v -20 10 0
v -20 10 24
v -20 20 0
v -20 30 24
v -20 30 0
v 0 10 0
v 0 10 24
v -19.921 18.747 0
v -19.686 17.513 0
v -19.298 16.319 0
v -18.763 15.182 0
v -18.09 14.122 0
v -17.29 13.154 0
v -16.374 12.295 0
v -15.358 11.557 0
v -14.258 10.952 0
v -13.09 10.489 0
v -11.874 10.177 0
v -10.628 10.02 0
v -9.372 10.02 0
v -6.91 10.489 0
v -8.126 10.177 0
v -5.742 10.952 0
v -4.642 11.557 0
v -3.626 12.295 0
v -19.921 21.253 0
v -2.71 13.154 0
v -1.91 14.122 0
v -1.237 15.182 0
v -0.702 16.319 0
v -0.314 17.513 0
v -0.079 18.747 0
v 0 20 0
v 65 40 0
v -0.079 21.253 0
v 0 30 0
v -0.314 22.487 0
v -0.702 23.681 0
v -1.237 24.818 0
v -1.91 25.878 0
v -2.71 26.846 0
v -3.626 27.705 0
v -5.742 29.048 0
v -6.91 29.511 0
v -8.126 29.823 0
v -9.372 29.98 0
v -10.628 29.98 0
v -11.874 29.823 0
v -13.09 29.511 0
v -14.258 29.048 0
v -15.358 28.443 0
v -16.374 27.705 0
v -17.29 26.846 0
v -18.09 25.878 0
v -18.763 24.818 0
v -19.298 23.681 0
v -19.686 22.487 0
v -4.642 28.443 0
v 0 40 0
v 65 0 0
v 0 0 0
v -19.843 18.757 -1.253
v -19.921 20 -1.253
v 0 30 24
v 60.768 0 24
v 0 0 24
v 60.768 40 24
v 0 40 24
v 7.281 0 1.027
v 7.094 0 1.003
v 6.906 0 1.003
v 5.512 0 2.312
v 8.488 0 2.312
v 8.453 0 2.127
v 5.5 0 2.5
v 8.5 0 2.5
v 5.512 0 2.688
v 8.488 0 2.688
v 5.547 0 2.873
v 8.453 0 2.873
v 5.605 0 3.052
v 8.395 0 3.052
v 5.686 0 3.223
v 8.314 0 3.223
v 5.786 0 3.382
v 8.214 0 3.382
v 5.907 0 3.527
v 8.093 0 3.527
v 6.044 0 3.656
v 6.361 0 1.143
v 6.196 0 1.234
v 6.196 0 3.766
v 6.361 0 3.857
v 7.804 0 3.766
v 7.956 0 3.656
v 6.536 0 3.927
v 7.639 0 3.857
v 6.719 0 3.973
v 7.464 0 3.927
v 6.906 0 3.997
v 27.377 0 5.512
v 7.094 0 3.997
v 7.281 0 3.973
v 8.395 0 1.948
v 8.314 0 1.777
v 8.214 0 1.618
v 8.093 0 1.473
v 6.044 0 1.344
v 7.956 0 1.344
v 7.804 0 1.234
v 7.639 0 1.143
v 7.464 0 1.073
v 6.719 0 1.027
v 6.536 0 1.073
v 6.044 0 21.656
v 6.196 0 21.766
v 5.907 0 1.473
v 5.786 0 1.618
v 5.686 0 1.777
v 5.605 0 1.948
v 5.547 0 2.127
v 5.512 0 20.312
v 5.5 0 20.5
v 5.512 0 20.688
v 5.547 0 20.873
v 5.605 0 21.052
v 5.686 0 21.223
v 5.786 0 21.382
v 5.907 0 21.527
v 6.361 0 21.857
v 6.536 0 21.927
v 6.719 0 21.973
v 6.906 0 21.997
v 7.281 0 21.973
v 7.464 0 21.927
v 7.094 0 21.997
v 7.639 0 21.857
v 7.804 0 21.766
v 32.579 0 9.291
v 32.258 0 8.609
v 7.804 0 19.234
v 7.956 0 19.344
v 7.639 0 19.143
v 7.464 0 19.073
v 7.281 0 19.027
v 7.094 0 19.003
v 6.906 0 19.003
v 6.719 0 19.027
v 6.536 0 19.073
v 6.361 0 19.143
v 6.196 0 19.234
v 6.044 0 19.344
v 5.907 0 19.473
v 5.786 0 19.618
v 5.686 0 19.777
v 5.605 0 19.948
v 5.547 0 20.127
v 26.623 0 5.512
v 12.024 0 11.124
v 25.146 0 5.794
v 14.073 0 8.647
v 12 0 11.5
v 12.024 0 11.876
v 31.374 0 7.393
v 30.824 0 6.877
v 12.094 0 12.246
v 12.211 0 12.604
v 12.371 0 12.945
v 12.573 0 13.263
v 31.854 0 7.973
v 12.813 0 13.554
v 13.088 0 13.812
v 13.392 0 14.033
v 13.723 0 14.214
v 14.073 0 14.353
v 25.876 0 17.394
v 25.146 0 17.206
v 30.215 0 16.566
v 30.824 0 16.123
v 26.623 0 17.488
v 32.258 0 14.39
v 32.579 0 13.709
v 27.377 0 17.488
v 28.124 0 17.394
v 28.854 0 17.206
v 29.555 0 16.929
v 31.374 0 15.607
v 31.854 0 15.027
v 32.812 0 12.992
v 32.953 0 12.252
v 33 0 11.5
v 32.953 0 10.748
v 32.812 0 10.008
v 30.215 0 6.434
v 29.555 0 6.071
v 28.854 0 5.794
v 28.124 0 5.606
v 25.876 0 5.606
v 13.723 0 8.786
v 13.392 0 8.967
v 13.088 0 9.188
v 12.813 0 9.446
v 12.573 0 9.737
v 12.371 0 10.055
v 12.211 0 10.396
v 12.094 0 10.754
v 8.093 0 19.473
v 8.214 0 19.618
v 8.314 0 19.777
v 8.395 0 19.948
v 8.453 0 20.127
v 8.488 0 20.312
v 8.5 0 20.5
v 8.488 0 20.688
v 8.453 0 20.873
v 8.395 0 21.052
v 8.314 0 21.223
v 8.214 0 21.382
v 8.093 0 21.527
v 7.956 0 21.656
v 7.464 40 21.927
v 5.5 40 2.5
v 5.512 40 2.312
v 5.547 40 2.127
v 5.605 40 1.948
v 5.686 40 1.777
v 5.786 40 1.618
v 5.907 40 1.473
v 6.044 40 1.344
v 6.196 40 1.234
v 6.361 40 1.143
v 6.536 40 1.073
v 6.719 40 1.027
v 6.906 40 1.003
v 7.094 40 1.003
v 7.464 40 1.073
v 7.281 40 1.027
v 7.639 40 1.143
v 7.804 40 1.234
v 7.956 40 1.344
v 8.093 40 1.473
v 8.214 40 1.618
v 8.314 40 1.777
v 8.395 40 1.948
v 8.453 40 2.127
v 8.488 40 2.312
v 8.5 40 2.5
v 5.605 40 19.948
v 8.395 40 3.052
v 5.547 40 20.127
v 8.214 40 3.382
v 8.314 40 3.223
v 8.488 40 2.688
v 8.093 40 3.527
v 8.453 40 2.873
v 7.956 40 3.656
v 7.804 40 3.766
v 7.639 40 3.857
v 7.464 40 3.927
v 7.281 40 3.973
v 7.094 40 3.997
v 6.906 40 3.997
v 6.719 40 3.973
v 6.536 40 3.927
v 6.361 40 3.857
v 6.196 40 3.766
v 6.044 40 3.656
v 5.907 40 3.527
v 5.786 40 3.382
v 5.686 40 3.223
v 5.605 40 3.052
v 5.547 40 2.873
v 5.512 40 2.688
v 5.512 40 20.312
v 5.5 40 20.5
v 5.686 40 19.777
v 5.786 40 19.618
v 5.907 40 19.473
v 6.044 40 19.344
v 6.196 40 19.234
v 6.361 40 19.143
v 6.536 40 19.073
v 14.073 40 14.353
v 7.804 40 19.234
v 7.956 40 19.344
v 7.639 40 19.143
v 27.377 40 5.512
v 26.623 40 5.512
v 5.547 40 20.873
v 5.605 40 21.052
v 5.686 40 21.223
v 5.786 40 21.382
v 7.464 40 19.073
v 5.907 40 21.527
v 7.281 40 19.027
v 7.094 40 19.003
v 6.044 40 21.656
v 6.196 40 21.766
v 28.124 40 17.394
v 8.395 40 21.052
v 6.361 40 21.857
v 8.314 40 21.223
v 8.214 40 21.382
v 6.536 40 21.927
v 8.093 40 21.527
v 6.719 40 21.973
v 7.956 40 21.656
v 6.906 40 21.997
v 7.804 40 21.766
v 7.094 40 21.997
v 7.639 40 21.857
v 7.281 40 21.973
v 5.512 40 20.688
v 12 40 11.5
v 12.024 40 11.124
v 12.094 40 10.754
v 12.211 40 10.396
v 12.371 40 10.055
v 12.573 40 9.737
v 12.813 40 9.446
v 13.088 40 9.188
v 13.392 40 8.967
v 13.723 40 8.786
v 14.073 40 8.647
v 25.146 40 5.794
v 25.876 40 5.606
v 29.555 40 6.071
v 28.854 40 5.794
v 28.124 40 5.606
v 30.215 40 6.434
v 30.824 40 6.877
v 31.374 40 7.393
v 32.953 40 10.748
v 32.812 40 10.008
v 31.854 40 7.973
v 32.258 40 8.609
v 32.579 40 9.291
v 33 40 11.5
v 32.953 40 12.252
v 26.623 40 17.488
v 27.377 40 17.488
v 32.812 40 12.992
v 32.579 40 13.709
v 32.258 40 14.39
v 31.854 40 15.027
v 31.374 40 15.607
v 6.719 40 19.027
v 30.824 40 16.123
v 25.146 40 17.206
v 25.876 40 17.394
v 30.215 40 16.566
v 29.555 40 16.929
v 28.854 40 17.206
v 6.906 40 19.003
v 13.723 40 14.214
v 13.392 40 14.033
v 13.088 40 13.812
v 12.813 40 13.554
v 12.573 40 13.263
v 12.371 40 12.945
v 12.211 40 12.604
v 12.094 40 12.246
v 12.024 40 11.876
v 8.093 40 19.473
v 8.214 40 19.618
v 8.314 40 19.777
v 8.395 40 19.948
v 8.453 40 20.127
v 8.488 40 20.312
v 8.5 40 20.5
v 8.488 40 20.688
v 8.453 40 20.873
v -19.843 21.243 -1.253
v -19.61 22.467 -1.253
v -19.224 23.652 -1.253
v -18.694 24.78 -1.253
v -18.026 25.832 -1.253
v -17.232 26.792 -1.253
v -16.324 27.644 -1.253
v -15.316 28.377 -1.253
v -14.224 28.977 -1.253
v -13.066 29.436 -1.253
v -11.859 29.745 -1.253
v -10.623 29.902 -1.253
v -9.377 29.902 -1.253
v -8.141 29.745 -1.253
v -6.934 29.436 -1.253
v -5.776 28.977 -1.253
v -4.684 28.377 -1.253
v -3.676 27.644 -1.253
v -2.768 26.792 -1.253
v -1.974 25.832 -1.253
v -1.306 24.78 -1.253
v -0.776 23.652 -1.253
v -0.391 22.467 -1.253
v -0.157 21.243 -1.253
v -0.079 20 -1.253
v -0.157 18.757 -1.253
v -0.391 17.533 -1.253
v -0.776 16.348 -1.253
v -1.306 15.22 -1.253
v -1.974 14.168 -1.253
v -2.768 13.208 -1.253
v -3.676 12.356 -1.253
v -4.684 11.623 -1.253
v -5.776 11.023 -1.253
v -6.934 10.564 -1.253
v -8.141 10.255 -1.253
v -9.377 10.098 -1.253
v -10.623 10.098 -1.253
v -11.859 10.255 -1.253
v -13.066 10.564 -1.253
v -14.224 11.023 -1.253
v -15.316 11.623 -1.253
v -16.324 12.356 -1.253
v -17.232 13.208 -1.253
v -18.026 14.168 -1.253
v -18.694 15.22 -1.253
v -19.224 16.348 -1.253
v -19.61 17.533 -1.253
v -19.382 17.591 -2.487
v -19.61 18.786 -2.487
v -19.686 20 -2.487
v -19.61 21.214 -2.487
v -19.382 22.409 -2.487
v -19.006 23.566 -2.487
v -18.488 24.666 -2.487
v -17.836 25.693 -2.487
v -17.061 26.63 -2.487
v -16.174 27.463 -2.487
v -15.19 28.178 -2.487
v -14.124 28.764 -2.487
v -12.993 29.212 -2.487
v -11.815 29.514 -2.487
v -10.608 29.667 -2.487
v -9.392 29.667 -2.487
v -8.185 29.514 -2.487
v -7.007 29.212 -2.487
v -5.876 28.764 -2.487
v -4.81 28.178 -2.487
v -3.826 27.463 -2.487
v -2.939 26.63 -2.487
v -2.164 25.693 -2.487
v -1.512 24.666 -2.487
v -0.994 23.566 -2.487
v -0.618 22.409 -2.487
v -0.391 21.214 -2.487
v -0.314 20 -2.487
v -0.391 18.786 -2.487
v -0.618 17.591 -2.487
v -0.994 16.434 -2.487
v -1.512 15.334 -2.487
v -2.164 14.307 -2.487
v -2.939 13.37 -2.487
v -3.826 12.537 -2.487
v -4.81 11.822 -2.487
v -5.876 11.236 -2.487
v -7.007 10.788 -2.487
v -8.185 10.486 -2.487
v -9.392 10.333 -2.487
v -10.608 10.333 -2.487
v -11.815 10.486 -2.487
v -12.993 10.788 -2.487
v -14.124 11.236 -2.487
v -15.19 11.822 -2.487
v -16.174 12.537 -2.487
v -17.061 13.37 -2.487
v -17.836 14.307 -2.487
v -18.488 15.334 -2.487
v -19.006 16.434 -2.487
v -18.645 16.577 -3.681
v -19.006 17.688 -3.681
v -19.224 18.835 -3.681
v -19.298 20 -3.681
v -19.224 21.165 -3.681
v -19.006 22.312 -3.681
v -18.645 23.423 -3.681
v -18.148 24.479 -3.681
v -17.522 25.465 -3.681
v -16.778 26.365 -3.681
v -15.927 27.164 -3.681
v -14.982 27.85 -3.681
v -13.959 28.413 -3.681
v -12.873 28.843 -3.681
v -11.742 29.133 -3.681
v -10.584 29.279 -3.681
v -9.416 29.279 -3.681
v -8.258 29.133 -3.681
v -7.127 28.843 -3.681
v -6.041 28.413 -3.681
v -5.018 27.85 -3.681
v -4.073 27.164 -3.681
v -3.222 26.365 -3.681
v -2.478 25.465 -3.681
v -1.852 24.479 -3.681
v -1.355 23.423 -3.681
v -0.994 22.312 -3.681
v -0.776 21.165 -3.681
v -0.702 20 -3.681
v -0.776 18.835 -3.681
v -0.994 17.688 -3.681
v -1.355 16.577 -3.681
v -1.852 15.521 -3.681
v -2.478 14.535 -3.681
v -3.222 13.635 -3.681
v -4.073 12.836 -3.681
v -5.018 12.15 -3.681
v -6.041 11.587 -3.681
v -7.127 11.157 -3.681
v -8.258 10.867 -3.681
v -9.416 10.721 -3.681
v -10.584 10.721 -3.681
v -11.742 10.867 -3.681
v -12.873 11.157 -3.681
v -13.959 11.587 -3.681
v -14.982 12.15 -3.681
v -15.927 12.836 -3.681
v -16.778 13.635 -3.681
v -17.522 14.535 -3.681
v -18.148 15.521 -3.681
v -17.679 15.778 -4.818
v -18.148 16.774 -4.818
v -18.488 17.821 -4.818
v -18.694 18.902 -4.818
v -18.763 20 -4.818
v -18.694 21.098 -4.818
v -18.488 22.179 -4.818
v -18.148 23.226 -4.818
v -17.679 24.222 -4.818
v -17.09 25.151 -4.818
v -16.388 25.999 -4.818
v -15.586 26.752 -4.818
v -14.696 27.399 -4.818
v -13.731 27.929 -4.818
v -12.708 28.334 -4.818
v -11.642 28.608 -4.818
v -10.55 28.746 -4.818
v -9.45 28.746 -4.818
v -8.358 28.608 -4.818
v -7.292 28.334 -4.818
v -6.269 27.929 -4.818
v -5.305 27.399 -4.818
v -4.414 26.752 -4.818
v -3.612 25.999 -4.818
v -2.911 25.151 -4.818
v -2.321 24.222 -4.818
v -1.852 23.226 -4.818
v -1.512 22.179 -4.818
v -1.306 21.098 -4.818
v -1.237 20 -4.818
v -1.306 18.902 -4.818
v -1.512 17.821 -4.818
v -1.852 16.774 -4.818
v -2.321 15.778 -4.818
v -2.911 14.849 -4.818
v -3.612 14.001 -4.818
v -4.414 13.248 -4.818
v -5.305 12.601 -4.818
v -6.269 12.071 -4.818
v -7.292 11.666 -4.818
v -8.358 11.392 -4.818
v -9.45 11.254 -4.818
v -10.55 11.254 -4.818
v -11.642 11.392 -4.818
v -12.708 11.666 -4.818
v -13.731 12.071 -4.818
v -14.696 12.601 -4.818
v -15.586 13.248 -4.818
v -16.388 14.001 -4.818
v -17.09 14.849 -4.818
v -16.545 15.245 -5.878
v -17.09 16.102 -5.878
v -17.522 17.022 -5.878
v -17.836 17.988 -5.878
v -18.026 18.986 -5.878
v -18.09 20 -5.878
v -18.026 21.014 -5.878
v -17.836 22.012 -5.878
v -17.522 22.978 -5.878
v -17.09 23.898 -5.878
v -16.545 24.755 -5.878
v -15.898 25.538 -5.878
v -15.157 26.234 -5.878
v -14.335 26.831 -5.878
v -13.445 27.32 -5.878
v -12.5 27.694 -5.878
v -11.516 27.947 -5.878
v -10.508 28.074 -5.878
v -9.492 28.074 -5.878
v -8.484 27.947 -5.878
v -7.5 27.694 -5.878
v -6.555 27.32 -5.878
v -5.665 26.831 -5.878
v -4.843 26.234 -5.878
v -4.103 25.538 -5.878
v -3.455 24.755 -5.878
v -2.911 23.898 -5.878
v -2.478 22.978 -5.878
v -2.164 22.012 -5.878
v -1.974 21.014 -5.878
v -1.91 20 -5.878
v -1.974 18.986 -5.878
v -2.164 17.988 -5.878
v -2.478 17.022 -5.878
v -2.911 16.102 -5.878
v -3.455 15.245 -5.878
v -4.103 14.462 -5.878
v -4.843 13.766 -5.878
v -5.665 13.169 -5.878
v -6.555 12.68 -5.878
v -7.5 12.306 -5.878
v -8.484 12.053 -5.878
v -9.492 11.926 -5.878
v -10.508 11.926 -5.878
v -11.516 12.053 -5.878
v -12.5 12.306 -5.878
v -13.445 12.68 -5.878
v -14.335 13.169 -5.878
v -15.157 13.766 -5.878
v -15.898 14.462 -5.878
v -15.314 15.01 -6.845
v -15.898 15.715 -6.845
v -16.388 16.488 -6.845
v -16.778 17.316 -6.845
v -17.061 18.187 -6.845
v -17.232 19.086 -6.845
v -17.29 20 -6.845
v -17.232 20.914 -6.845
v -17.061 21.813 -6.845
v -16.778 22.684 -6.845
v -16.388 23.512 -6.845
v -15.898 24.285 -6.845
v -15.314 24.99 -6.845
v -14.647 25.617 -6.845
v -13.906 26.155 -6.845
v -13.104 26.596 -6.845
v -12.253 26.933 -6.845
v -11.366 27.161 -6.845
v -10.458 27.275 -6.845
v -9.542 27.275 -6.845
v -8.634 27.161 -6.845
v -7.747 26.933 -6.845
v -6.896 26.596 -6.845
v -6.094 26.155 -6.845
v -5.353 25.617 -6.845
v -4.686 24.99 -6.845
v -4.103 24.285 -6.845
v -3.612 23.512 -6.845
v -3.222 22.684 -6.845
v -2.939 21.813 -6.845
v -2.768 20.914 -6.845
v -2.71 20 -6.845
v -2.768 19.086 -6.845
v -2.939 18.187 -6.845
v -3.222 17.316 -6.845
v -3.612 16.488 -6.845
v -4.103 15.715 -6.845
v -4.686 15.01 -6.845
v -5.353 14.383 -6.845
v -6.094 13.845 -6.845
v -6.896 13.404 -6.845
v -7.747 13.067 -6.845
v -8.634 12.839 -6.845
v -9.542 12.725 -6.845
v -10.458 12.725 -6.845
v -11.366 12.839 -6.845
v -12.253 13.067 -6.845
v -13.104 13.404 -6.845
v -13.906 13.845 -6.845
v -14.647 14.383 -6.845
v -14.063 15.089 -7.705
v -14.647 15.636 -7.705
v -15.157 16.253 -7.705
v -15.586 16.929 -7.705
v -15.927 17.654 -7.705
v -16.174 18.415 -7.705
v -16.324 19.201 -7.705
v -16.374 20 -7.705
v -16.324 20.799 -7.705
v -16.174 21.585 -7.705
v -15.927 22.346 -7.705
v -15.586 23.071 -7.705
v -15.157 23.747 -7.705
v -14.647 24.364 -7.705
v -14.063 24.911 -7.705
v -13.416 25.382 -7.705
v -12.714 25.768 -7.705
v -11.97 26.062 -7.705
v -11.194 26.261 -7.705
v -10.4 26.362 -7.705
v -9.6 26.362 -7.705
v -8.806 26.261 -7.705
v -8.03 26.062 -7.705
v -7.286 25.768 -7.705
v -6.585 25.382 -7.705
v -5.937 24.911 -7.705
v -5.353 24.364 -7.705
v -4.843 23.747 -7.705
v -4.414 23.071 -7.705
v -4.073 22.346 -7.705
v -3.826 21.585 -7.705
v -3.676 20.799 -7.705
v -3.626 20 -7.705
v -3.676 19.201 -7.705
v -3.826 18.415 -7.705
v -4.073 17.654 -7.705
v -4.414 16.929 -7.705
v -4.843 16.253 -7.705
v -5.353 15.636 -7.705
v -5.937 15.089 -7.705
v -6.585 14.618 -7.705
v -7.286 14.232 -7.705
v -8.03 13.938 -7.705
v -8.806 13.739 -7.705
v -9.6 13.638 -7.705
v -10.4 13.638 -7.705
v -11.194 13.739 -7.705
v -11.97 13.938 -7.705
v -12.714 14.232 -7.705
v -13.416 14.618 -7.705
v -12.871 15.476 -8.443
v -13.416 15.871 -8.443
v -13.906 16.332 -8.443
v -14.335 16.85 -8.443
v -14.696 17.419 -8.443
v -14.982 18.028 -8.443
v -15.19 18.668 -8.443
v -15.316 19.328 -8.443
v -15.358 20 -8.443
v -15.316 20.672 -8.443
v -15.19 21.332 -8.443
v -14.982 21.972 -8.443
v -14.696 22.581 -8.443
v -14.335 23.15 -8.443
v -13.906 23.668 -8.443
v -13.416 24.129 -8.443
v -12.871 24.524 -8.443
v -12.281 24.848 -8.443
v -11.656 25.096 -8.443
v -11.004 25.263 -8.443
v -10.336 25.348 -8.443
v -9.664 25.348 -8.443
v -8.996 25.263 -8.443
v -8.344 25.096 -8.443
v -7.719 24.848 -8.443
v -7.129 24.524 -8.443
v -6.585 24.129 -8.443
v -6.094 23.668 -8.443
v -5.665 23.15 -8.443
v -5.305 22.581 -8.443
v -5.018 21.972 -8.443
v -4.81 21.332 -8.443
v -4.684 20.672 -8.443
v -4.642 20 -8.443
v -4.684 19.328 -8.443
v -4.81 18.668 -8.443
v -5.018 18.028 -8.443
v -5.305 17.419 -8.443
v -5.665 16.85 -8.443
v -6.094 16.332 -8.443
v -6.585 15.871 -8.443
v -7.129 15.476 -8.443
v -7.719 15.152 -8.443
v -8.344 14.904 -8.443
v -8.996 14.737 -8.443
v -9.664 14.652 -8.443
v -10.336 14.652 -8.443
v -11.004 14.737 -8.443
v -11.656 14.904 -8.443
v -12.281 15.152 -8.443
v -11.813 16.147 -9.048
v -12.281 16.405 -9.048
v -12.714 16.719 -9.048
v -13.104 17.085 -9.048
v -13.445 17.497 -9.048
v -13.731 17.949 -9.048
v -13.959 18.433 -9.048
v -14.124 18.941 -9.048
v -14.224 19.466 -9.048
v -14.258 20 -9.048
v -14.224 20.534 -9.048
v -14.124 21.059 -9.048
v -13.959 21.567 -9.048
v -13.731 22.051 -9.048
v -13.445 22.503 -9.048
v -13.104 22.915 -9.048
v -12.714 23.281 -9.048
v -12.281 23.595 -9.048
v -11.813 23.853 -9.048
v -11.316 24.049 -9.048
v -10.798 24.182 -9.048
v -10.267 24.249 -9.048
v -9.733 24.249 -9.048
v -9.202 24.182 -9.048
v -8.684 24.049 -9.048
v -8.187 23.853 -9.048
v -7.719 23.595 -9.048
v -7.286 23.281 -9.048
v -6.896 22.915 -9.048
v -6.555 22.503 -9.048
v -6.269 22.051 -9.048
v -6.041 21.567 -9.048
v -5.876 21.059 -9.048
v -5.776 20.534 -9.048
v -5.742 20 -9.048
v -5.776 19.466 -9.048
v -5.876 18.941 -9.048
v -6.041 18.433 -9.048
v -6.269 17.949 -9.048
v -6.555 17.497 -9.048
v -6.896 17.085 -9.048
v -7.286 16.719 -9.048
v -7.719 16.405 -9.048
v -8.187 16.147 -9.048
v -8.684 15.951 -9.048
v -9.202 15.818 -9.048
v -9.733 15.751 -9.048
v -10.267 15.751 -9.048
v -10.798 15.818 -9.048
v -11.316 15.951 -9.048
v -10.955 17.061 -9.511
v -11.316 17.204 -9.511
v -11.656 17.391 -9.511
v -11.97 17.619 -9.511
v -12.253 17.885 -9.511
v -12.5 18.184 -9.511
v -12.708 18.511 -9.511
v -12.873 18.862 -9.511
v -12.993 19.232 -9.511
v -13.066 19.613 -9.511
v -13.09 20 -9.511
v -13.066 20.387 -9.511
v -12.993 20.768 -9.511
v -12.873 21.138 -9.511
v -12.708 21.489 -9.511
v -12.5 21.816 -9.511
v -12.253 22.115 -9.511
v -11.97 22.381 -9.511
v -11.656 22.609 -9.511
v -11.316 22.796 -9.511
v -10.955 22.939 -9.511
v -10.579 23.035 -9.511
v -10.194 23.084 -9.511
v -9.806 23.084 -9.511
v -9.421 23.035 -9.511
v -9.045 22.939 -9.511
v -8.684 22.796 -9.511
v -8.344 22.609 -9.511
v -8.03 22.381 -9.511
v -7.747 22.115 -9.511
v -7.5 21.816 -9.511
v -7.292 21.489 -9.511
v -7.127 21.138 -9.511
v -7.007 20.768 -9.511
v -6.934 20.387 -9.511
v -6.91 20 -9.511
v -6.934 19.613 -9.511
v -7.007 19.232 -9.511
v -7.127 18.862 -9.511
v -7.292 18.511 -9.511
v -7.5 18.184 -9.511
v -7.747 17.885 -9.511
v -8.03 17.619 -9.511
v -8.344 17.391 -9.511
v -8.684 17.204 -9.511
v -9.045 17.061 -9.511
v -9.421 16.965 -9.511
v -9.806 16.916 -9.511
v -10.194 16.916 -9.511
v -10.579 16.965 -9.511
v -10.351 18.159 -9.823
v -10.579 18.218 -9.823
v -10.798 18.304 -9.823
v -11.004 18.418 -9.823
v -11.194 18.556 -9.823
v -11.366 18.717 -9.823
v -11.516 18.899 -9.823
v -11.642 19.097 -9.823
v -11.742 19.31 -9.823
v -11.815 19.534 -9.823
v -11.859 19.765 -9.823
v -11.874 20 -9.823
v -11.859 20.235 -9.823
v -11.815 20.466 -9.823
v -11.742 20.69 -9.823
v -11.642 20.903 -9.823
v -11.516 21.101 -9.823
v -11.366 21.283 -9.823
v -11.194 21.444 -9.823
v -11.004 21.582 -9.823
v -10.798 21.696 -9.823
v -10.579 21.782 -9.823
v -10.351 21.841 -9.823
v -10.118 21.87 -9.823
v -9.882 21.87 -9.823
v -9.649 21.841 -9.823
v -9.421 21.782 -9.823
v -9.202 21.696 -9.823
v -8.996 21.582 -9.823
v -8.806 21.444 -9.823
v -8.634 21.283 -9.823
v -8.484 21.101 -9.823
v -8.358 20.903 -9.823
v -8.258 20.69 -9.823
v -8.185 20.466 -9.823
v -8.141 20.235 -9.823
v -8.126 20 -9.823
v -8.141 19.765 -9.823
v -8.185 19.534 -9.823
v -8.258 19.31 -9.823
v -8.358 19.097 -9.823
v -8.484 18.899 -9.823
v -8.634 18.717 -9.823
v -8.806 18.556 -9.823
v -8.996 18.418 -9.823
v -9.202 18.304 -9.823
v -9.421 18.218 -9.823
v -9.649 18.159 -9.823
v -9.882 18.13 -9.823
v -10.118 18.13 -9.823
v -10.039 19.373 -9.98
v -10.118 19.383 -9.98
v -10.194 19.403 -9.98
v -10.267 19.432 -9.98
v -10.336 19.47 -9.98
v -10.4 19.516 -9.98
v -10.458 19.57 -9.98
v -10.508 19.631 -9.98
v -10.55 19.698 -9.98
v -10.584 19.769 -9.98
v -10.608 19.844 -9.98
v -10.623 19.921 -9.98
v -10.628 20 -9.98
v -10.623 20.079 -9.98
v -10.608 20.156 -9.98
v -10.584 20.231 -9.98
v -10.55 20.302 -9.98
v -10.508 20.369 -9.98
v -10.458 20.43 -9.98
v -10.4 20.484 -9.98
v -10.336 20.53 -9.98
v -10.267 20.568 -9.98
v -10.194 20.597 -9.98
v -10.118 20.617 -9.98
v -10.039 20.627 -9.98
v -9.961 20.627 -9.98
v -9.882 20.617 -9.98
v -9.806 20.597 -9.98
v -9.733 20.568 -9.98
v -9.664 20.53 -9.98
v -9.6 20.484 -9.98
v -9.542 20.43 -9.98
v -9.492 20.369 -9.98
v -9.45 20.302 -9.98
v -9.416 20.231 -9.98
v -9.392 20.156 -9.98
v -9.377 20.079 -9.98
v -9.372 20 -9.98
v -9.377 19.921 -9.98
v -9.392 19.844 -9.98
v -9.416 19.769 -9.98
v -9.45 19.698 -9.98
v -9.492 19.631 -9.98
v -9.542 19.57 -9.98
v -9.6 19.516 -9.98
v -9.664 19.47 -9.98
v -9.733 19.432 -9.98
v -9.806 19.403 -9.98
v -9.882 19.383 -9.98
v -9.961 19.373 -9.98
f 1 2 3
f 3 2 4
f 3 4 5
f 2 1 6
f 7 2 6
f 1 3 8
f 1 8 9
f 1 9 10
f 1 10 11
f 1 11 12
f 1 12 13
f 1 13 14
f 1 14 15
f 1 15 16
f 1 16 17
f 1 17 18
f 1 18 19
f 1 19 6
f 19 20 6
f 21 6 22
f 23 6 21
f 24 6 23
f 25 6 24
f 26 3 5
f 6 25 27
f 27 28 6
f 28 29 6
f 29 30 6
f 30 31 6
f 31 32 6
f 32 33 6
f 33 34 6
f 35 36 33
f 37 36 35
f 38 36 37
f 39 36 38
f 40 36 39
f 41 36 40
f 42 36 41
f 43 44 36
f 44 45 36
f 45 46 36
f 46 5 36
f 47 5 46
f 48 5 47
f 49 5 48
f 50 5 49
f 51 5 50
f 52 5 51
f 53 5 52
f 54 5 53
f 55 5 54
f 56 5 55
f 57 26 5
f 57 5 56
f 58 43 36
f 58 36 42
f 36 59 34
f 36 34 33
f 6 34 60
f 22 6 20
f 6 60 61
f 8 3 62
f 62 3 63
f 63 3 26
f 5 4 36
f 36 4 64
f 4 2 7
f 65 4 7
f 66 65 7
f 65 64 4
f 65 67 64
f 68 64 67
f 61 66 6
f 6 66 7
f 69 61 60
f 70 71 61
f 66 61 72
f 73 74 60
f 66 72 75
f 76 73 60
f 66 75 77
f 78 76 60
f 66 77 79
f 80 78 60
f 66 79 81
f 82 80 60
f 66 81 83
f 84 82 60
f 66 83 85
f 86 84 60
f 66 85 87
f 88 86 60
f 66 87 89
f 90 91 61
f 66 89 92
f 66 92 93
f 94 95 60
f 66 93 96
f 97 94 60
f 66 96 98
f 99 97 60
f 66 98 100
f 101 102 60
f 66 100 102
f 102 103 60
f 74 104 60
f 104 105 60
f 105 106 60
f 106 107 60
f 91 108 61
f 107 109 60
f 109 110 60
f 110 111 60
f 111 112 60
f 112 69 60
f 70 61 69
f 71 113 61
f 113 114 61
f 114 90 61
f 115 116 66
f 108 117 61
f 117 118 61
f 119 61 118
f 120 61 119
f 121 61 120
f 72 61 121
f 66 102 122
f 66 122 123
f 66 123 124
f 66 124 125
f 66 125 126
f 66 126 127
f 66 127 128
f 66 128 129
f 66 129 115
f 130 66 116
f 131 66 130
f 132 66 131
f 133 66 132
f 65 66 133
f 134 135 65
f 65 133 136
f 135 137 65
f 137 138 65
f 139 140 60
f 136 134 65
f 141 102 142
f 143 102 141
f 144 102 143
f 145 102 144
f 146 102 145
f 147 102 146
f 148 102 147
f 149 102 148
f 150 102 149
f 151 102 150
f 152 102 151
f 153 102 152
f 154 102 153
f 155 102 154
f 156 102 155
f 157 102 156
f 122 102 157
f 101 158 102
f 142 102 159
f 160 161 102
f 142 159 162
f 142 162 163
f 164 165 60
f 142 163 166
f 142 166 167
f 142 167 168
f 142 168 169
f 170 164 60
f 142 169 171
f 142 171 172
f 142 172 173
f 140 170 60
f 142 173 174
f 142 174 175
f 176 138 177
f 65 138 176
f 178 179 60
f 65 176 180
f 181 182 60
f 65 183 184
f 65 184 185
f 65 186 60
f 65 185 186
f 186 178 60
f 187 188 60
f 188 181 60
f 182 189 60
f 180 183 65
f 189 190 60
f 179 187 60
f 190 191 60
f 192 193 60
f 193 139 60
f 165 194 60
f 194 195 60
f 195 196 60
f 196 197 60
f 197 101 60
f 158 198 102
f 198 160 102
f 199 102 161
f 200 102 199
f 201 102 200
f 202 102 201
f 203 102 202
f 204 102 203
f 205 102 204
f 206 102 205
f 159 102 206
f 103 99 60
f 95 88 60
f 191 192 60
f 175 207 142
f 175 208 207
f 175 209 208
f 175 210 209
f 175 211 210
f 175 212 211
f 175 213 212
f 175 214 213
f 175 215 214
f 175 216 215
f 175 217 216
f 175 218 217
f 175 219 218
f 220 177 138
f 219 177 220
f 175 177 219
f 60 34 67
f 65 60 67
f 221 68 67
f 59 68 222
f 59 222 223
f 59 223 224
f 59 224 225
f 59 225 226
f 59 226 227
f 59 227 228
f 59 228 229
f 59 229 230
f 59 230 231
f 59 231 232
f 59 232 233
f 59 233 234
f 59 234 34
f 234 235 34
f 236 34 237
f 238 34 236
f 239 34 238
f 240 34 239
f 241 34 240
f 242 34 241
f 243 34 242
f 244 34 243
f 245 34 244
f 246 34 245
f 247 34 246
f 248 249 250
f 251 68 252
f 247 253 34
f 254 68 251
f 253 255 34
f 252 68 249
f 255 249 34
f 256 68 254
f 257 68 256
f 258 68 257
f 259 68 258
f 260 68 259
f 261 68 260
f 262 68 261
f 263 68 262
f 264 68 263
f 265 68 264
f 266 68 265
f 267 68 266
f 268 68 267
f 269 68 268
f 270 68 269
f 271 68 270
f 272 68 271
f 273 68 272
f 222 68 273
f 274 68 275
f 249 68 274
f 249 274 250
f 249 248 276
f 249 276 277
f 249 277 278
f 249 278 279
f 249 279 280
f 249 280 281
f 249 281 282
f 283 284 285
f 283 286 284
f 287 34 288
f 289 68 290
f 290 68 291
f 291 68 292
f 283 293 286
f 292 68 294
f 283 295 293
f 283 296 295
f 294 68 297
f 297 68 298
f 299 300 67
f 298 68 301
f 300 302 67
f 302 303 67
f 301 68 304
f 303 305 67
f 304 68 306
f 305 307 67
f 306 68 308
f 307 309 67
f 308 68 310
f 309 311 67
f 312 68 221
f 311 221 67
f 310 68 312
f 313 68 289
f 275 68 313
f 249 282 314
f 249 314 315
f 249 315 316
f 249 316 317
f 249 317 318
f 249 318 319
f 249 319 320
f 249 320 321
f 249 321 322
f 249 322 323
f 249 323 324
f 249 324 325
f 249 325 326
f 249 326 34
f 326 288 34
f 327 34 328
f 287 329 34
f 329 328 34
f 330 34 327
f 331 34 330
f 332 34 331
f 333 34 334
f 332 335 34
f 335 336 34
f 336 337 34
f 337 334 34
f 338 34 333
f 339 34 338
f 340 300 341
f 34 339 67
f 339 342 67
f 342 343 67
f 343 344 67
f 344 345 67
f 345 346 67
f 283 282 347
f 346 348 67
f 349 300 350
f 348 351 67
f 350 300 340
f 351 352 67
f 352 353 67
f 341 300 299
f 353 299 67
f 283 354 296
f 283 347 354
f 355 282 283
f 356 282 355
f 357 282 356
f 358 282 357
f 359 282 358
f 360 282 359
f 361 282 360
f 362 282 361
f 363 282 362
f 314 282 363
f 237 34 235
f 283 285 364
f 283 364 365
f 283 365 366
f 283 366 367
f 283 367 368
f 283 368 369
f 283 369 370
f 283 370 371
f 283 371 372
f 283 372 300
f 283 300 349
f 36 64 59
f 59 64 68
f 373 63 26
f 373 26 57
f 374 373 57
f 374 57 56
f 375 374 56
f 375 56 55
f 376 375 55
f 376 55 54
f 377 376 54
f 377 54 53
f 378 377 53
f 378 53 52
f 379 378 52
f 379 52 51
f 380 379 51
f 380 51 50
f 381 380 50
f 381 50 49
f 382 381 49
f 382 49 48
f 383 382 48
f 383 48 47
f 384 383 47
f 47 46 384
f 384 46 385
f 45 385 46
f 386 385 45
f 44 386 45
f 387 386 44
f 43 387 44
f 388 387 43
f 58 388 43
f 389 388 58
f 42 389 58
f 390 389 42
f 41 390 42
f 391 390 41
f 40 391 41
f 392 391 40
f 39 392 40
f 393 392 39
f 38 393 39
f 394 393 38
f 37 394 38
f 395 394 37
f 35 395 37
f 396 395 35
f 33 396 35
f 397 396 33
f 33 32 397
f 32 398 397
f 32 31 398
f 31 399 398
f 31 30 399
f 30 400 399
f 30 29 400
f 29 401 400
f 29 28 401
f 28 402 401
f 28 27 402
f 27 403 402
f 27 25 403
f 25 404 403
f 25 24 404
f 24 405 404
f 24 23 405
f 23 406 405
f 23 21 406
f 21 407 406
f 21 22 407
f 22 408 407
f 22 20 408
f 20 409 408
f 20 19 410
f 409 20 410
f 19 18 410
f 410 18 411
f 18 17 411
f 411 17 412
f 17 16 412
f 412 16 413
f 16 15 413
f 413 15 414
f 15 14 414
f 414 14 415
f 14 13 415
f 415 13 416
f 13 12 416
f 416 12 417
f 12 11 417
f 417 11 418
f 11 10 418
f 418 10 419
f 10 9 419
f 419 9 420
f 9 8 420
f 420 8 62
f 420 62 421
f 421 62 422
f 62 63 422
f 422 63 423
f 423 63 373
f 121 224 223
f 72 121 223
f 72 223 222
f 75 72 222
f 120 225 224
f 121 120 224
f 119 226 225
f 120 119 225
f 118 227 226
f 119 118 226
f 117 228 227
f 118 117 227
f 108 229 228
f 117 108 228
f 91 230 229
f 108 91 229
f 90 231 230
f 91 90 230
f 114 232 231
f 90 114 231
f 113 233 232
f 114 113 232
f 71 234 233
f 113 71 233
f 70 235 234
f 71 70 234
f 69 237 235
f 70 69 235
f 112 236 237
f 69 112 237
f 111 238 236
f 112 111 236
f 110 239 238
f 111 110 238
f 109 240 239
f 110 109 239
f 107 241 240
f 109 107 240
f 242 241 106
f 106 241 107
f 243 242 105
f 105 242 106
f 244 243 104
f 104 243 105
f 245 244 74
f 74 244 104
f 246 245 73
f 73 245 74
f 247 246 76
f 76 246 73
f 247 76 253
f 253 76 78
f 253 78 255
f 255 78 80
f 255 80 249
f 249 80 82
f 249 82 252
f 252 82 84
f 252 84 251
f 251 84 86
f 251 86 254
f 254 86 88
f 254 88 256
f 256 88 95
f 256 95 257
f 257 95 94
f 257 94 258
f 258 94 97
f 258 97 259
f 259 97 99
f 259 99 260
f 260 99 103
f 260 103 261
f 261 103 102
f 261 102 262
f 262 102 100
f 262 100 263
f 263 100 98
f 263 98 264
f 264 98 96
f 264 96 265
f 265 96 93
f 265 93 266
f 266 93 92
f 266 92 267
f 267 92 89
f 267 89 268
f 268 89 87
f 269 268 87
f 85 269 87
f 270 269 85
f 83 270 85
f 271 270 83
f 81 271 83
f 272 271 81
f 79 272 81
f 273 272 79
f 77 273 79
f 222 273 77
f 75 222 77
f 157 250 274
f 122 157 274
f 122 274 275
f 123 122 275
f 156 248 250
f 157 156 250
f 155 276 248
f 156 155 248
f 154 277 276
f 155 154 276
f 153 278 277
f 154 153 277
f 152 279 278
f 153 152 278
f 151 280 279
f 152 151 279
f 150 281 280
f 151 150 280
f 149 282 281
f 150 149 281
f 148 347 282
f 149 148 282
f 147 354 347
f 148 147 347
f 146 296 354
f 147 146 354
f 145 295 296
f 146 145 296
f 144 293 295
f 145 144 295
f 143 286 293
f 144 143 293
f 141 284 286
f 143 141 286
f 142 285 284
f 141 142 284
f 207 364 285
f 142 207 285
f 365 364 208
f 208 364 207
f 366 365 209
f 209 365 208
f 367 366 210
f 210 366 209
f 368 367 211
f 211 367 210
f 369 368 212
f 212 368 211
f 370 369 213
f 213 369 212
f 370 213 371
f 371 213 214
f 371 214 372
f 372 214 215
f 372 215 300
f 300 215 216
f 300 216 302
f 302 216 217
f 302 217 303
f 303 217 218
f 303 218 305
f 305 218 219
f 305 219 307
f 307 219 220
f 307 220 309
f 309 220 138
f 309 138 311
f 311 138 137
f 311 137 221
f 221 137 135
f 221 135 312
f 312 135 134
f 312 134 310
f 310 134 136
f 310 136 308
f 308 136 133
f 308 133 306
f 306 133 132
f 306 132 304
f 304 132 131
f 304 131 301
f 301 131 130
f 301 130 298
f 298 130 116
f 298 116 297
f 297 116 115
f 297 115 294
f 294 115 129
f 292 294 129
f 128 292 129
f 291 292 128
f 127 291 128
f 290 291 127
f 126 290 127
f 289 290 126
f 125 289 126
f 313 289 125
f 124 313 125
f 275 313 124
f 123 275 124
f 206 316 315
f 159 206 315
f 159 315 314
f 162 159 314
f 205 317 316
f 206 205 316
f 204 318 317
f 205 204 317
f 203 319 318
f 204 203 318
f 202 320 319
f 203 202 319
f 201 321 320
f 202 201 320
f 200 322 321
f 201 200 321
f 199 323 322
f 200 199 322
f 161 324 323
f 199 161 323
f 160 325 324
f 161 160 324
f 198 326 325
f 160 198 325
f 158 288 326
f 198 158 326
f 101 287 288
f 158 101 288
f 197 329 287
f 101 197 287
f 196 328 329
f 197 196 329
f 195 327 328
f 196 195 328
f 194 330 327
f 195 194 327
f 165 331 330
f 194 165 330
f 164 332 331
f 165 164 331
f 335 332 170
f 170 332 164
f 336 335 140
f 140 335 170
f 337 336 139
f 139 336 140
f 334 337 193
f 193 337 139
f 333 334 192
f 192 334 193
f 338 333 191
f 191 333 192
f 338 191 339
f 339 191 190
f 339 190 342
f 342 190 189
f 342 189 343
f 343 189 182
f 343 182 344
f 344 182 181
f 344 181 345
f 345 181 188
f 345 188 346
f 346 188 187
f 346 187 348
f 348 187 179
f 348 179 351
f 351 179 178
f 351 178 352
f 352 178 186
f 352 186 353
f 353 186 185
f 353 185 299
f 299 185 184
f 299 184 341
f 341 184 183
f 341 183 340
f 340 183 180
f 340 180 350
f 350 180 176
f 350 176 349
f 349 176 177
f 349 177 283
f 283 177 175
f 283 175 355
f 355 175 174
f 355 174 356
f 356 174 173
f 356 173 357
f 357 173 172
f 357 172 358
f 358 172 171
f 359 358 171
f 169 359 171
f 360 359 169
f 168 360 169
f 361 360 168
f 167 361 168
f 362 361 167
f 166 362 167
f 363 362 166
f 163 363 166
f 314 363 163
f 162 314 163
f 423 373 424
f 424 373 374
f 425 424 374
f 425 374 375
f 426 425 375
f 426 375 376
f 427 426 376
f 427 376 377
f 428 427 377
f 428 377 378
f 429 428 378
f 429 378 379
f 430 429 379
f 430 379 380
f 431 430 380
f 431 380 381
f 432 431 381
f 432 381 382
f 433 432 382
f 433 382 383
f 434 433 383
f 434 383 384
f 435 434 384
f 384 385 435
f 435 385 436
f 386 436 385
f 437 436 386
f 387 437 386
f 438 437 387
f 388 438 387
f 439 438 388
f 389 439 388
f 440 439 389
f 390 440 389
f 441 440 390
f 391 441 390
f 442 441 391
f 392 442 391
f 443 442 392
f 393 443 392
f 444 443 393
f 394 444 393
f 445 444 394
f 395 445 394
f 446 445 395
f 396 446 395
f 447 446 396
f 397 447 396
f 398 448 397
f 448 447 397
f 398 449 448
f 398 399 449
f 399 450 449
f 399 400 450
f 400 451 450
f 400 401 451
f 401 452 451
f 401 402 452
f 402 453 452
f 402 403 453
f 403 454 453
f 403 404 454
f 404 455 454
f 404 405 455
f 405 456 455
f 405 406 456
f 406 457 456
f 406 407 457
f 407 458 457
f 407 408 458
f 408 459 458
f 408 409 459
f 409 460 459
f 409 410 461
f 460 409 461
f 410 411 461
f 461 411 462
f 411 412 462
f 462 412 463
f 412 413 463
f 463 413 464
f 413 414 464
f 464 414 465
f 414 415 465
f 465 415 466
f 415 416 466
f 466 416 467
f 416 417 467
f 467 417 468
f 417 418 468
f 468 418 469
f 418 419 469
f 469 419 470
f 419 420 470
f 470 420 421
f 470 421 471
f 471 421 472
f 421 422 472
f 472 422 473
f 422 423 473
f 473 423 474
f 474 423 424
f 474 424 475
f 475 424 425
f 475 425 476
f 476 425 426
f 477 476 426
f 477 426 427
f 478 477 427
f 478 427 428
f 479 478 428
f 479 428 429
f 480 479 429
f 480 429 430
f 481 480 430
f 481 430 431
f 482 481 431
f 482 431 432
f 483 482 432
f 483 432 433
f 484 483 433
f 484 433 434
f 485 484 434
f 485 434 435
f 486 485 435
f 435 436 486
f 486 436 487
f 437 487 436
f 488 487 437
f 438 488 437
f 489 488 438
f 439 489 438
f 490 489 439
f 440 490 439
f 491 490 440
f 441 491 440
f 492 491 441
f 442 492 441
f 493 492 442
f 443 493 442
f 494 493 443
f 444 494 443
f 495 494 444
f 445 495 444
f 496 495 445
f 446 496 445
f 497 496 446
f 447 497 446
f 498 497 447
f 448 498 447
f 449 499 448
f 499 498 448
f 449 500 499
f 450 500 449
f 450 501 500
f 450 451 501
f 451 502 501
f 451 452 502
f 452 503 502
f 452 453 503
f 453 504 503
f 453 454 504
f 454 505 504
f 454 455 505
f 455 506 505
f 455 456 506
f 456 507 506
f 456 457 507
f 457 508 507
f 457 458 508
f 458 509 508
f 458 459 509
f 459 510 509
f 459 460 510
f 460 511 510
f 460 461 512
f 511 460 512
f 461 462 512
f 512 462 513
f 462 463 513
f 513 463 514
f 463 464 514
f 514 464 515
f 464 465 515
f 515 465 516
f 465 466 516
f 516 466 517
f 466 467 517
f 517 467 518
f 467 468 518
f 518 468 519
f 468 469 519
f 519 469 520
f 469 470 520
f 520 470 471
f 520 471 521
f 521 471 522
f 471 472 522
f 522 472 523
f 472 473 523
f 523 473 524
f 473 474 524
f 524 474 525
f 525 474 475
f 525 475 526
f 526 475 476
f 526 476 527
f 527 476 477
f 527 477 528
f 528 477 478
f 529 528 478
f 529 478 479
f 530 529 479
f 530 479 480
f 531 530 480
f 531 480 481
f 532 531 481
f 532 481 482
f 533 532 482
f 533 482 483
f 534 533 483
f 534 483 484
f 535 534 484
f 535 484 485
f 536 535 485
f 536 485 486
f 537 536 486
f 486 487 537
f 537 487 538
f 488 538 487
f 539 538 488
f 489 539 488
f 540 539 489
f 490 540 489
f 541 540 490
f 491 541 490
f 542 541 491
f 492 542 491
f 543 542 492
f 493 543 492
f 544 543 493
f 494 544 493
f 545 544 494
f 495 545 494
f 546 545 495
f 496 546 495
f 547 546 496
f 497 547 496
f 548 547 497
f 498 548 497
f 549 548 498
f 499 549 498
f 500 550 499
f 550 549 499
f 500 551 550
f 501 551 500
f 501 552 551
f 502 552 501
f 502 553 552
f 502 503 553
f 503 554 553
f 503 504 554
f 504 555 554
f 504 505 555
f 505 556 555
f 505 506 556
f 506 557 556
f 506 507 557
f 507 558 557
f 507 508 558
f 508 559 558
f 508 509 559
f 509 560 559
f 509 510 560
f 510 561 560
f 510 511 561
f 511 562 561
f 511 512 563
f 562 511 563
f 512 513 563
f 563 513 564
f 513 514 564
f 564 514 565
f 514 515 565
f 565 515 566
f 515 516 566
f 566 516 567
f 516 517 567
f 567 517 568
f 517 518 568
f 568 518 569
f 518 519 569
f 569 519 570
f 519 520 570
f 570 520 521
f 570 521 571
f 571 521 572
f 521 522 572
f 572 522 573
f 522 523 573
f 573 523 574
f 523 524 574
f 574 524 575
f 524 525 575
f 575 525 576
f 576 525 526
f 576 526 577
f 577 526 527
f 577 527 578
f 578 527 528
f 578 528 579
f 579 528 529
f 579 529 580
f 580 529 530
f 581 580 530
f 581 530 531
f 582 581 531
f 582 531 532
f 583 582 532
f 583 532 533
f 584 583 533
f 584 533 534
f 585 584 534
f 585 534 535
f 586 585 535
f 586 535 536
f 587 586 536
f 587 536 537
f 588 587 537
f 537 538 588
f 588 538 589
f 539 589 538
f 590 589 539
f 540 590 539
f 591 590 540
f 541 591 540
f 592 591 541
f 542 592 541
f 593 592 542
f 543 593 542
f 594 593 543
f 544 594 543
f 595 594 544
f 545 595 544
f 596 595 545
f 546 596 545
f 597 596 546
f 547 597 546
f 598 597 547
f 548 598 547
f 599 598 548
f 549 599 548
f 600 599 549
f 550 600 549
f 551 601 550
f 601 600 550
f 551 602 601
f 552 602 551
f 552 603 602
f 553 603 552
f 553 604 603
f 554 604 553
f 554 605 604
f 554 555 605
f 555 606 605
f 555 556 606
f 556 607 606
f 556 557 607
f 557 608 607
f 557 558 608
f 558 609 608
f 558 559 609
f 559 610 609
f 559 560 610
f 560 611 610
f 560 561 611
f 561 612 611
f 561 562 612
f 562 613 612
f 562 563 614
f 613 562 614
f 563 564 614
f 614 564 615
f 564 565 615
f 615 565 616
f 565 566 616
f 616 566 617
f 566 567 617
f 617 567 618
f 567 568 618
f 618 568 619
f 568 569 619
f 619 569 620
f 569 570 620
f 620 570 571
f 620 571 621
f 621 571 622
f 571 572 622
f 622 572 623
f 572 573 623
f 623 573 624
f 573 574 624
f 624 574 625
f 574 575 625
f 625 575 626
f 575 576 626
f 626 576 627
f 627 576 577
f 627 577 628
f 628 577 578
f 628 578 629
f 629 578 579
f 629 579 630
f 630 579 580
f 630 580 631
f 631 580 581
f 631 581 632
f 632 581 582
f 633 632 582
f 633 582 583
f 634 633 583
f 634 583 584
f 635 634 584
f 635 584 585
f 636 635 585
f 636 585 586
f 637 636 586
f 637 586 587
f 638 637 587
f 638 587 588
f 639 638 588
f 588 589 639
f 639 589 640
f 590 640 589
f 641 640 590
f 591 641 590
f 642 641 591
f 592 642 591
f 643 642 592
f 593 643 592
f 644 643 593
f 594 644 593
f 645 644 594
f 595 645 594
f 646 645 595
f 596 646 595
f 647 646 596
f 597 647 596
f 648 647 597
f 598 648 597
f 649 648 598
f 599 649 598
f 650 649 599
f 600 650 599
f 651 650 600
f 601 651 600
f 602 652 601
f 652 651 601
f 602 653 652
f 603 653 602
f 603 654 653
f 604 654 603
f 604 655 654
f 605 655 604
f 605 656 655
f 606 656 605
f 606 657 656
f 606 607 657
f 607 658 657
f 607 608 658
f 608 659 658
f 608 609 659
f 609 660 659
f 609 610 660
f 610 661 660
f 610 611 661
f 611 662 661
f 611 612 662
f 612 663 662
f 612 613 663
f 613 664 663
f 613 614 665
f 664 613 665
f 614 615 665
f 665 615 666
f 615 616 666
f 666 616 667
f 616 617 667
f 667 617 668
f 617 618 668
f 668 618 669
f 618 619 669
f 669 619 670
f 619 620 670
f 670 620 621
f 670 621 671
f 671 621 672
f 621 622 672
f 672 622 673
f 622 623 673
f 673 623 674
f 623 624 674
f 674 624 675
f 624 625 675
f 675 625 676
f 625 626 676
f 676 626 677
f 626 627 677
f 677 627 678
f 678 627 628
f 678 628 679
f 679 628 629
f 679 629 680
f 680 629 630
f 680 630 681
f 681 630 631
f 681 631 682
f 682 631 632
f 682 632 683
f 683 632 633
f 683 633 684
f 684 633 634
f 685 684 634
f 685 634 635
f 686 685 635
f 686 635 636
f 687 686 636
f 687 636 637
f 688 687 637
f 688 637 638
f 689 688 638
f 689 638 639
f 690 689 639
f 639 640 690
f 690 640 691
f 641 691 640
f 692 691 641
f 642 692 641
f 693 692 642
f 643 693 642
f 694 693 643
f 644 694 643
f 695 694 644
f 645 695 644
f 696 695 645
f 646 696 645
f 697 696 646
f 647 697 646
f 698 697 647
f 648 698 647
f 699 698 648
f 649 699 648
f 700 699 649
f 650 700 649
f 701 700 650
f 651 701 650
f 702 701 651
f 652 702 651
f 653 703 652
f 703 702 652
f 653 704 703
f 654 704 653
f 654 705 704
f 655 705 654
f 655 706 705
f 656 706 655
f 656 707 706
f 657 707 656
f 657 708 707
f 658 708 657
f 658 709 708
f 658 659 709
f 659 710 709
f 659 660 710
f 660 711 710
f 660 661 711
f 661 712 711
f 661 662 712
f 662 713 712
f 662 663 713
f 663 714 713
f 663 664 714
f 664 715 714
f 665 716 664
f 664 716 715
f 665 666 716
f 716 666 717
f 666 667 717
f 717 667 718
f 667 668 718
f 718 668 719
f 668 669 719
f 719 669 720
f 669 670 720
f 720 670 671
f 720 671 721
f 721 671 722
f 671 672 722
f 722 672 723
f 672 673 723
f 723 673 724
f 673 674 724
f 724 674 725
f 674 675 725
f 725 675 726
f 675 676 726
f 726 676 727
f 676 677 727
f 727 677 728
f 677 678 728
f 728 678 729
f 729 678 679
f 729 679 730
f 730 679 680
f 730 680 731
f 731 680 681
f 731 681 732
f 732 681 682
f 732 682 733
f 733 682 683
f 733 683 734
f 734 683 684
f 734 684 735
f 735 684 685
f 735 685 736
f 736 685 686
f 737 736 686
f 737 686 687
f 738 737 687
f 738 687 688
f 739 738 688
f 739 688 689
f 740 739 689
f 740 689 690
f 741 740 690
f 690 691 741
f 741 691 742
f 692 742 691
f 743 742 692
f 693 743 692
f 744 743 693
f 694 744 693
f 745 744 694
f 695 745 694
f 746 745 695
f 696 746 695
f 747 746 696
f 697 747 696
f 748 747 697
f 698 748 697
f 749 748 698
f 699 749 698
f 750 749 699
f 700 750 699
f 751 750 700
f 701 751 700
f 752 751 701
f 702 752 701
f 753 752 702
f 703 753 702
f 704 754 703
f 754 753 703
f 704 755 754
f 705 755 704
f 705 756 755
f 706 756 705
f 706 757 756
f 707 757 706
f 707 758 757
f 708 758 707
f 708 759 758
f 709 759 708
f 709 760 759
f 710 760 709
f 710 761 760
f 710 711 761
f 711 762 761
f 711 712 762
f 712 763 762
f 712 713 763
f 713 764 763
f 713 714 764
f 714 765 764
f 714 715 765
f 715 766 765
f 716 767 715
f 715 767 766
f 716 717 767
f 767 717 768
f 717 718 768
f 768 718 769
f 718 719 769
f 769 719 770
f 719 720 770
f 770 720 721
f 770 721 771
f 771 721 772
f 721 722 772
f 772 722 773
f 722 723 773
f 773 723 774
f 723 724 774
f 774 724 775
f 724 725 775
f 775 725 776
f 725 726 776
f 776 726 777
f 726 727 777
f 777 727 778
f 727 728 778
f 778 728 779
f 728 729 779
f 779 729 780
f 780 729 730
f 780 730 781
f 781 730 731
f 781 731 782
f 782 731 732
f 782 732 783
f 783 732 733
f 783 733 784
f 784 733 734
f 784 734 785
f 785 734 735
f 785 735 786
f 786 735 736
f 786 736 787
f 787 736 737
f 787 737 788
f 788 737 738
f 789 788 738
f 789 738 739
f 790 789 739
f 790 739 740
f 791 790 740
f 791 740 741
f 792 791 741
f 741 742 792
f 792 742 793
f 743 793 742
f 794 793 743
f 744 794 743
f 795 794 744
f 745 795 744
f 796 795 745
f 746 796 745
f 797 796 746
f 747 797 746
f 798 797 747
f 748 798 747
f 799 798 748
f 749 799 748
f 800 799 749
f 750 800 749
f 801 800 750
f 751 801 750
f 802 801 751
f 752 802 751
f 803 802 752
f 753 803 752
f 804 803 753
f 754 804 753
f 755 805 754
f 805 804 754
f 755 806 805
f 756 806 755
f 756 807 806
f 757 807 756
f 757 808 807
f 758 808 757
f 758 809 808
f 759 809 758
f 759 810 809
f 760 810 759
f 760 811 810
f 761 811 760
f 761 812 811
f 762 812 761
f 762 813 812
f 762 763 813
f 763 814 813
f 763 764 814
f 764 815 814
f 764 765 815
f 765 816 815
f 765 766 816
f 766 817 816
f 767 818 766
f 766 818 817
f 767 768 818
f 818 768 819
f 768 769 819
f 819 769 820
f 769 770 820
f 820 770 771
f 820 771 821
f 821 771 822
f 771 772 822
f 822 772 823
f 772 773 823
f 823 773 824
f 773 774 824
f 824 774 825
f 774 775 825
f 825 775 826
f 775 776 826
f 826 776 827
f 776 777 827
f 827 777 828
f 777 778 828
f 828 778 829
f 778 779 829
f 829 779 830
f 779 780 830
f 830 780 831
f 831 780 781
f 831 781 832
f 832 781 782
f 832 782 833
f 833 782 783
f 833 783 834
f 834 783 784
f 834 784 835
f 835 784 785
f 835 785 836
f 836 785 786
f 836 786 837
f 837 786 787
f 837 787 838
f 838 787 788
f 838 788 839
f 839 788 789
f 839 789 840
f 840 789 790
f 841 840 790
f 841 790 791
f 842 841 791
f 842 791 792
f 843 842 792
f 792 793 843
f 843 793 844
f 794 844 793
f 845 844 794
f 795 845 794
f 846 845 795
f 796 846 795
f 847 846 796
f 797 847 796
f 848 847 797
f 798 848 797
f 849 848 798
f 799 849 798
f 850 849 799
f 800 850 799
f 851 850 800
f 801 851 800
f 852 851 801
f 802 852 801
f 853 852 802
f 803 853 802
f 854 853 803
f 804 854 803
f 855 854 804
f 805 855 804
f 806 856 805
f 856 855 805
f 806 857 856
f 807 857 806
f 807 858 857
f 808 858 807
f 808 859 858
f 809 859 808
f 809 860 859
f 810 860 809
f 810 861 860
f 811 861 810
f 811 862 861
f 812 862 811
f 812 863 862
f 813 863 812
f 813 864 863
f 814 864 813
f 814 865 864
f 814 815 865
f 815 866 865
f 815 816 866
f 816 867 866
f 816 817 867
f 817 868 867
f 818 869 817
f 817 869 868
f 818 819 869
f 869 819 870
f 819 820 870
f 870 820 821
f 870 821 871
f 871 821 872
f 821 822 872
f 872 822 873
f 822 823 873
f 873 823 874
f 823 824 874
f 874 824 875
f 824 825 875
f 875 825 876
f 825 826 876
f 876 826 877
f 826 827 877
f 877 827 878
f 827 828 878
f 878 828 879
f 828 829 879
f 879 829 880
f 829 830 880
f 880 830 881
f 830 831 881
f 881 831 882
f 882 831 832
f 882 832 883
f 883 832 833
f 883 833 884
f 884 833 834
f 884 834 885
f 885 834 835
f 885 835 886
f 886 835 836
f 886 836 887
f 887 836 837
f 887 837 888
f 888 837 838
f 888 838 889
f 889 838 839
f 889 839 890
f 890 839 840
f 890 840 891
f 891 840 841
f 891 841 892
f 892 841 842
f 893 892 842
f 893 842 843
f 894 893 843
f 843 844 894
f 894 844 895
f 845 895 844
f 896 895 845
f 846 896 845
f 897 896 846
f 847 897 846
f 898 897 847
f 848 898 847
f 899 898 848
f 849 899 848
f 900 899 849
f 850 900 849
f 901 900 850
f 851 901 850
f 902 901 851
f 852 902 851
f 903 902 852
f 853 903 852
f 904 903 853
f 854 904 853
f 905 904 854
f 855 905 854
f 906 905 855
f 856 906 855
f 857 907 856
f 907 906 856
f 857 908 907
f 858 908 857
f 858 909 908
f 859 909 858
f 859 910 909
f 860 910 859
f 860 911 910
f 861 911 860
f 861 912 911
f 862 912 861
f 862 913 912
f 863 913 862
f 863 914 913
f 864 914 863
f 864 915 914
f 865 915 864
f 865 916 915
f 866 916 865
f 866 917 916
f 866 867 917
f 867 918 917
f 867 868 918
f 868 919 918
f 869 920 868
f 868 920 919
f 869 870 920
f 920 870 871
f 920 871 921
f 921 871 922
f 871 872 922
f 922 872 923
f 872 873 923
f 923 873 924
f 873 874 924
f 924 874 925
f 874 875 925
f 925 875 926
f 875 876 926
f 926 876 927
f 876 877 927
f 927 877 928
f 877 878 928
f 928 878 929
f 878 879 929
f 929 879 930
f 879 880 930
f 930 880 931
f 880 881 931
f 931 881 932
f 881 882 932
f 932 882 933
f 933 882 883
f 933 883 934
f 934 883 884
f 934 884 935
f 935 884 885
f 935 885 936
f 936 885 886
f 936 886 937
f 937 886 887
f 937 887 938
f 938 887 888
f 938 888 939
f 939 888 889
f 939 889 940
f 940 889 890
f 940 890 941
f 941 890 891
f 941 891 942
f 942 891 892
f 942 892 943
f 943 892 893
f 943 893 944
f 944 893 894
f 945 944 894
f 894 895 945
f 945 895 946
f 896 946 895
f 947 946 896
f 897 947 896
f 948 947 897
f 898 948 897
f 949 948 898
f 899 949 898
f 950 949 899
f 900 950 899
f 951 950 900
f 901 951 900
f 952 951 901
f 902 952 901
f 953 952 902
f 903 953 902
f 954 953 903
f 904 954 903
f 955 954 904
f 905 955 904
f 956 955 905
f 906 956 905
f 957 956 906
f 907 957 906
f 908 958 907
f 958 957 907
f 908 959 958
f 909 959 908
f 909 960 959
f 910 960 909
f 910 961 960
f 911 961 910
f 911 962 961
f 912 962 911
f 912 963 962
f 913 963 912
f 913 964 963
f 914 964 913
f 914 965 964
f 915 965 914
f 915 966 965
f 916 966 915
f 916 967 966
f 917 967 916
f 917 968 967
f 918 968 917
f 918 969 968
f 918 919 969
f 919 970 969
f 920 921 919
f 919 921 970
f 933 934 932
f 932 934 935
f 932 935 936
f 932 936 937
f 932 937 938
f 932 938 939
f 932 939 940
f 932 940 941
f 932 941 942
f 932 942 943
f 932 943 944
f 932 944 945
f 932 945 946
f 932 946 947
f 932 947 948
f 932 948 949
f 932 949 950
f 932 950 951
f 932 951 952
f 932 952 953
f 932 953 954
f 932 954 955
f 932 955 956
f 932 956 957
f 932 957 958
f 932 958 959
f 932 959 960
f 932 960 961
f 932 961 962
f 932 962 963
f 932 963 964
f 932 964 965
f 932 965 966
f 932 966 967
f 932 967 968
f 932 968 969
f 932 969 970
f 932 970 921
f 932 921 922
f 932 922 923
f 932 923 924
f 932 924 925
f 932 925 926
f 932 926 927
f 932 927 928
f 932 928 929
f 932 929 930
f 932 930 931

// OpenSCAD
//Baxterbot motor mount
//bpw 10/10/13

 $fn=50;  //resolution


module MotorMount() {

difference(){
union(){
cube([65, 40, 24], center = false);


//back cube
translate([-20,10,0]){
cube([21, 20,24], center = false);}
//roller
translate([-10,20,0]){
sphere(r=10, center = true);}

}

//botom screw hole
translate([7,-1,2.5]){
	rotate([-90,0,0]){
		cylinder(h=42, r=1.5);}}

//top screw hole
translate([7,-1,20.5]){
	rotate([-90,0,0]){
		cylinder(h=42, r=1.5);}}

hull(){
//hold for other side of axil
translate([27,-1,23/2]){
	rotate([-90,0,0]){
		cylinder(h=42, r=6);}}
//hold for little nub
translate([15,-1,23/2]){
	rotate([-90,0,0]){
		cylinder(h=42, r=3);}}
}

//cut off the slant
translate([65,-30,0]){
	rotate([0,-10,0]){
		cube([20, 100,100], center = false);}}
}


}



MotorMount();
